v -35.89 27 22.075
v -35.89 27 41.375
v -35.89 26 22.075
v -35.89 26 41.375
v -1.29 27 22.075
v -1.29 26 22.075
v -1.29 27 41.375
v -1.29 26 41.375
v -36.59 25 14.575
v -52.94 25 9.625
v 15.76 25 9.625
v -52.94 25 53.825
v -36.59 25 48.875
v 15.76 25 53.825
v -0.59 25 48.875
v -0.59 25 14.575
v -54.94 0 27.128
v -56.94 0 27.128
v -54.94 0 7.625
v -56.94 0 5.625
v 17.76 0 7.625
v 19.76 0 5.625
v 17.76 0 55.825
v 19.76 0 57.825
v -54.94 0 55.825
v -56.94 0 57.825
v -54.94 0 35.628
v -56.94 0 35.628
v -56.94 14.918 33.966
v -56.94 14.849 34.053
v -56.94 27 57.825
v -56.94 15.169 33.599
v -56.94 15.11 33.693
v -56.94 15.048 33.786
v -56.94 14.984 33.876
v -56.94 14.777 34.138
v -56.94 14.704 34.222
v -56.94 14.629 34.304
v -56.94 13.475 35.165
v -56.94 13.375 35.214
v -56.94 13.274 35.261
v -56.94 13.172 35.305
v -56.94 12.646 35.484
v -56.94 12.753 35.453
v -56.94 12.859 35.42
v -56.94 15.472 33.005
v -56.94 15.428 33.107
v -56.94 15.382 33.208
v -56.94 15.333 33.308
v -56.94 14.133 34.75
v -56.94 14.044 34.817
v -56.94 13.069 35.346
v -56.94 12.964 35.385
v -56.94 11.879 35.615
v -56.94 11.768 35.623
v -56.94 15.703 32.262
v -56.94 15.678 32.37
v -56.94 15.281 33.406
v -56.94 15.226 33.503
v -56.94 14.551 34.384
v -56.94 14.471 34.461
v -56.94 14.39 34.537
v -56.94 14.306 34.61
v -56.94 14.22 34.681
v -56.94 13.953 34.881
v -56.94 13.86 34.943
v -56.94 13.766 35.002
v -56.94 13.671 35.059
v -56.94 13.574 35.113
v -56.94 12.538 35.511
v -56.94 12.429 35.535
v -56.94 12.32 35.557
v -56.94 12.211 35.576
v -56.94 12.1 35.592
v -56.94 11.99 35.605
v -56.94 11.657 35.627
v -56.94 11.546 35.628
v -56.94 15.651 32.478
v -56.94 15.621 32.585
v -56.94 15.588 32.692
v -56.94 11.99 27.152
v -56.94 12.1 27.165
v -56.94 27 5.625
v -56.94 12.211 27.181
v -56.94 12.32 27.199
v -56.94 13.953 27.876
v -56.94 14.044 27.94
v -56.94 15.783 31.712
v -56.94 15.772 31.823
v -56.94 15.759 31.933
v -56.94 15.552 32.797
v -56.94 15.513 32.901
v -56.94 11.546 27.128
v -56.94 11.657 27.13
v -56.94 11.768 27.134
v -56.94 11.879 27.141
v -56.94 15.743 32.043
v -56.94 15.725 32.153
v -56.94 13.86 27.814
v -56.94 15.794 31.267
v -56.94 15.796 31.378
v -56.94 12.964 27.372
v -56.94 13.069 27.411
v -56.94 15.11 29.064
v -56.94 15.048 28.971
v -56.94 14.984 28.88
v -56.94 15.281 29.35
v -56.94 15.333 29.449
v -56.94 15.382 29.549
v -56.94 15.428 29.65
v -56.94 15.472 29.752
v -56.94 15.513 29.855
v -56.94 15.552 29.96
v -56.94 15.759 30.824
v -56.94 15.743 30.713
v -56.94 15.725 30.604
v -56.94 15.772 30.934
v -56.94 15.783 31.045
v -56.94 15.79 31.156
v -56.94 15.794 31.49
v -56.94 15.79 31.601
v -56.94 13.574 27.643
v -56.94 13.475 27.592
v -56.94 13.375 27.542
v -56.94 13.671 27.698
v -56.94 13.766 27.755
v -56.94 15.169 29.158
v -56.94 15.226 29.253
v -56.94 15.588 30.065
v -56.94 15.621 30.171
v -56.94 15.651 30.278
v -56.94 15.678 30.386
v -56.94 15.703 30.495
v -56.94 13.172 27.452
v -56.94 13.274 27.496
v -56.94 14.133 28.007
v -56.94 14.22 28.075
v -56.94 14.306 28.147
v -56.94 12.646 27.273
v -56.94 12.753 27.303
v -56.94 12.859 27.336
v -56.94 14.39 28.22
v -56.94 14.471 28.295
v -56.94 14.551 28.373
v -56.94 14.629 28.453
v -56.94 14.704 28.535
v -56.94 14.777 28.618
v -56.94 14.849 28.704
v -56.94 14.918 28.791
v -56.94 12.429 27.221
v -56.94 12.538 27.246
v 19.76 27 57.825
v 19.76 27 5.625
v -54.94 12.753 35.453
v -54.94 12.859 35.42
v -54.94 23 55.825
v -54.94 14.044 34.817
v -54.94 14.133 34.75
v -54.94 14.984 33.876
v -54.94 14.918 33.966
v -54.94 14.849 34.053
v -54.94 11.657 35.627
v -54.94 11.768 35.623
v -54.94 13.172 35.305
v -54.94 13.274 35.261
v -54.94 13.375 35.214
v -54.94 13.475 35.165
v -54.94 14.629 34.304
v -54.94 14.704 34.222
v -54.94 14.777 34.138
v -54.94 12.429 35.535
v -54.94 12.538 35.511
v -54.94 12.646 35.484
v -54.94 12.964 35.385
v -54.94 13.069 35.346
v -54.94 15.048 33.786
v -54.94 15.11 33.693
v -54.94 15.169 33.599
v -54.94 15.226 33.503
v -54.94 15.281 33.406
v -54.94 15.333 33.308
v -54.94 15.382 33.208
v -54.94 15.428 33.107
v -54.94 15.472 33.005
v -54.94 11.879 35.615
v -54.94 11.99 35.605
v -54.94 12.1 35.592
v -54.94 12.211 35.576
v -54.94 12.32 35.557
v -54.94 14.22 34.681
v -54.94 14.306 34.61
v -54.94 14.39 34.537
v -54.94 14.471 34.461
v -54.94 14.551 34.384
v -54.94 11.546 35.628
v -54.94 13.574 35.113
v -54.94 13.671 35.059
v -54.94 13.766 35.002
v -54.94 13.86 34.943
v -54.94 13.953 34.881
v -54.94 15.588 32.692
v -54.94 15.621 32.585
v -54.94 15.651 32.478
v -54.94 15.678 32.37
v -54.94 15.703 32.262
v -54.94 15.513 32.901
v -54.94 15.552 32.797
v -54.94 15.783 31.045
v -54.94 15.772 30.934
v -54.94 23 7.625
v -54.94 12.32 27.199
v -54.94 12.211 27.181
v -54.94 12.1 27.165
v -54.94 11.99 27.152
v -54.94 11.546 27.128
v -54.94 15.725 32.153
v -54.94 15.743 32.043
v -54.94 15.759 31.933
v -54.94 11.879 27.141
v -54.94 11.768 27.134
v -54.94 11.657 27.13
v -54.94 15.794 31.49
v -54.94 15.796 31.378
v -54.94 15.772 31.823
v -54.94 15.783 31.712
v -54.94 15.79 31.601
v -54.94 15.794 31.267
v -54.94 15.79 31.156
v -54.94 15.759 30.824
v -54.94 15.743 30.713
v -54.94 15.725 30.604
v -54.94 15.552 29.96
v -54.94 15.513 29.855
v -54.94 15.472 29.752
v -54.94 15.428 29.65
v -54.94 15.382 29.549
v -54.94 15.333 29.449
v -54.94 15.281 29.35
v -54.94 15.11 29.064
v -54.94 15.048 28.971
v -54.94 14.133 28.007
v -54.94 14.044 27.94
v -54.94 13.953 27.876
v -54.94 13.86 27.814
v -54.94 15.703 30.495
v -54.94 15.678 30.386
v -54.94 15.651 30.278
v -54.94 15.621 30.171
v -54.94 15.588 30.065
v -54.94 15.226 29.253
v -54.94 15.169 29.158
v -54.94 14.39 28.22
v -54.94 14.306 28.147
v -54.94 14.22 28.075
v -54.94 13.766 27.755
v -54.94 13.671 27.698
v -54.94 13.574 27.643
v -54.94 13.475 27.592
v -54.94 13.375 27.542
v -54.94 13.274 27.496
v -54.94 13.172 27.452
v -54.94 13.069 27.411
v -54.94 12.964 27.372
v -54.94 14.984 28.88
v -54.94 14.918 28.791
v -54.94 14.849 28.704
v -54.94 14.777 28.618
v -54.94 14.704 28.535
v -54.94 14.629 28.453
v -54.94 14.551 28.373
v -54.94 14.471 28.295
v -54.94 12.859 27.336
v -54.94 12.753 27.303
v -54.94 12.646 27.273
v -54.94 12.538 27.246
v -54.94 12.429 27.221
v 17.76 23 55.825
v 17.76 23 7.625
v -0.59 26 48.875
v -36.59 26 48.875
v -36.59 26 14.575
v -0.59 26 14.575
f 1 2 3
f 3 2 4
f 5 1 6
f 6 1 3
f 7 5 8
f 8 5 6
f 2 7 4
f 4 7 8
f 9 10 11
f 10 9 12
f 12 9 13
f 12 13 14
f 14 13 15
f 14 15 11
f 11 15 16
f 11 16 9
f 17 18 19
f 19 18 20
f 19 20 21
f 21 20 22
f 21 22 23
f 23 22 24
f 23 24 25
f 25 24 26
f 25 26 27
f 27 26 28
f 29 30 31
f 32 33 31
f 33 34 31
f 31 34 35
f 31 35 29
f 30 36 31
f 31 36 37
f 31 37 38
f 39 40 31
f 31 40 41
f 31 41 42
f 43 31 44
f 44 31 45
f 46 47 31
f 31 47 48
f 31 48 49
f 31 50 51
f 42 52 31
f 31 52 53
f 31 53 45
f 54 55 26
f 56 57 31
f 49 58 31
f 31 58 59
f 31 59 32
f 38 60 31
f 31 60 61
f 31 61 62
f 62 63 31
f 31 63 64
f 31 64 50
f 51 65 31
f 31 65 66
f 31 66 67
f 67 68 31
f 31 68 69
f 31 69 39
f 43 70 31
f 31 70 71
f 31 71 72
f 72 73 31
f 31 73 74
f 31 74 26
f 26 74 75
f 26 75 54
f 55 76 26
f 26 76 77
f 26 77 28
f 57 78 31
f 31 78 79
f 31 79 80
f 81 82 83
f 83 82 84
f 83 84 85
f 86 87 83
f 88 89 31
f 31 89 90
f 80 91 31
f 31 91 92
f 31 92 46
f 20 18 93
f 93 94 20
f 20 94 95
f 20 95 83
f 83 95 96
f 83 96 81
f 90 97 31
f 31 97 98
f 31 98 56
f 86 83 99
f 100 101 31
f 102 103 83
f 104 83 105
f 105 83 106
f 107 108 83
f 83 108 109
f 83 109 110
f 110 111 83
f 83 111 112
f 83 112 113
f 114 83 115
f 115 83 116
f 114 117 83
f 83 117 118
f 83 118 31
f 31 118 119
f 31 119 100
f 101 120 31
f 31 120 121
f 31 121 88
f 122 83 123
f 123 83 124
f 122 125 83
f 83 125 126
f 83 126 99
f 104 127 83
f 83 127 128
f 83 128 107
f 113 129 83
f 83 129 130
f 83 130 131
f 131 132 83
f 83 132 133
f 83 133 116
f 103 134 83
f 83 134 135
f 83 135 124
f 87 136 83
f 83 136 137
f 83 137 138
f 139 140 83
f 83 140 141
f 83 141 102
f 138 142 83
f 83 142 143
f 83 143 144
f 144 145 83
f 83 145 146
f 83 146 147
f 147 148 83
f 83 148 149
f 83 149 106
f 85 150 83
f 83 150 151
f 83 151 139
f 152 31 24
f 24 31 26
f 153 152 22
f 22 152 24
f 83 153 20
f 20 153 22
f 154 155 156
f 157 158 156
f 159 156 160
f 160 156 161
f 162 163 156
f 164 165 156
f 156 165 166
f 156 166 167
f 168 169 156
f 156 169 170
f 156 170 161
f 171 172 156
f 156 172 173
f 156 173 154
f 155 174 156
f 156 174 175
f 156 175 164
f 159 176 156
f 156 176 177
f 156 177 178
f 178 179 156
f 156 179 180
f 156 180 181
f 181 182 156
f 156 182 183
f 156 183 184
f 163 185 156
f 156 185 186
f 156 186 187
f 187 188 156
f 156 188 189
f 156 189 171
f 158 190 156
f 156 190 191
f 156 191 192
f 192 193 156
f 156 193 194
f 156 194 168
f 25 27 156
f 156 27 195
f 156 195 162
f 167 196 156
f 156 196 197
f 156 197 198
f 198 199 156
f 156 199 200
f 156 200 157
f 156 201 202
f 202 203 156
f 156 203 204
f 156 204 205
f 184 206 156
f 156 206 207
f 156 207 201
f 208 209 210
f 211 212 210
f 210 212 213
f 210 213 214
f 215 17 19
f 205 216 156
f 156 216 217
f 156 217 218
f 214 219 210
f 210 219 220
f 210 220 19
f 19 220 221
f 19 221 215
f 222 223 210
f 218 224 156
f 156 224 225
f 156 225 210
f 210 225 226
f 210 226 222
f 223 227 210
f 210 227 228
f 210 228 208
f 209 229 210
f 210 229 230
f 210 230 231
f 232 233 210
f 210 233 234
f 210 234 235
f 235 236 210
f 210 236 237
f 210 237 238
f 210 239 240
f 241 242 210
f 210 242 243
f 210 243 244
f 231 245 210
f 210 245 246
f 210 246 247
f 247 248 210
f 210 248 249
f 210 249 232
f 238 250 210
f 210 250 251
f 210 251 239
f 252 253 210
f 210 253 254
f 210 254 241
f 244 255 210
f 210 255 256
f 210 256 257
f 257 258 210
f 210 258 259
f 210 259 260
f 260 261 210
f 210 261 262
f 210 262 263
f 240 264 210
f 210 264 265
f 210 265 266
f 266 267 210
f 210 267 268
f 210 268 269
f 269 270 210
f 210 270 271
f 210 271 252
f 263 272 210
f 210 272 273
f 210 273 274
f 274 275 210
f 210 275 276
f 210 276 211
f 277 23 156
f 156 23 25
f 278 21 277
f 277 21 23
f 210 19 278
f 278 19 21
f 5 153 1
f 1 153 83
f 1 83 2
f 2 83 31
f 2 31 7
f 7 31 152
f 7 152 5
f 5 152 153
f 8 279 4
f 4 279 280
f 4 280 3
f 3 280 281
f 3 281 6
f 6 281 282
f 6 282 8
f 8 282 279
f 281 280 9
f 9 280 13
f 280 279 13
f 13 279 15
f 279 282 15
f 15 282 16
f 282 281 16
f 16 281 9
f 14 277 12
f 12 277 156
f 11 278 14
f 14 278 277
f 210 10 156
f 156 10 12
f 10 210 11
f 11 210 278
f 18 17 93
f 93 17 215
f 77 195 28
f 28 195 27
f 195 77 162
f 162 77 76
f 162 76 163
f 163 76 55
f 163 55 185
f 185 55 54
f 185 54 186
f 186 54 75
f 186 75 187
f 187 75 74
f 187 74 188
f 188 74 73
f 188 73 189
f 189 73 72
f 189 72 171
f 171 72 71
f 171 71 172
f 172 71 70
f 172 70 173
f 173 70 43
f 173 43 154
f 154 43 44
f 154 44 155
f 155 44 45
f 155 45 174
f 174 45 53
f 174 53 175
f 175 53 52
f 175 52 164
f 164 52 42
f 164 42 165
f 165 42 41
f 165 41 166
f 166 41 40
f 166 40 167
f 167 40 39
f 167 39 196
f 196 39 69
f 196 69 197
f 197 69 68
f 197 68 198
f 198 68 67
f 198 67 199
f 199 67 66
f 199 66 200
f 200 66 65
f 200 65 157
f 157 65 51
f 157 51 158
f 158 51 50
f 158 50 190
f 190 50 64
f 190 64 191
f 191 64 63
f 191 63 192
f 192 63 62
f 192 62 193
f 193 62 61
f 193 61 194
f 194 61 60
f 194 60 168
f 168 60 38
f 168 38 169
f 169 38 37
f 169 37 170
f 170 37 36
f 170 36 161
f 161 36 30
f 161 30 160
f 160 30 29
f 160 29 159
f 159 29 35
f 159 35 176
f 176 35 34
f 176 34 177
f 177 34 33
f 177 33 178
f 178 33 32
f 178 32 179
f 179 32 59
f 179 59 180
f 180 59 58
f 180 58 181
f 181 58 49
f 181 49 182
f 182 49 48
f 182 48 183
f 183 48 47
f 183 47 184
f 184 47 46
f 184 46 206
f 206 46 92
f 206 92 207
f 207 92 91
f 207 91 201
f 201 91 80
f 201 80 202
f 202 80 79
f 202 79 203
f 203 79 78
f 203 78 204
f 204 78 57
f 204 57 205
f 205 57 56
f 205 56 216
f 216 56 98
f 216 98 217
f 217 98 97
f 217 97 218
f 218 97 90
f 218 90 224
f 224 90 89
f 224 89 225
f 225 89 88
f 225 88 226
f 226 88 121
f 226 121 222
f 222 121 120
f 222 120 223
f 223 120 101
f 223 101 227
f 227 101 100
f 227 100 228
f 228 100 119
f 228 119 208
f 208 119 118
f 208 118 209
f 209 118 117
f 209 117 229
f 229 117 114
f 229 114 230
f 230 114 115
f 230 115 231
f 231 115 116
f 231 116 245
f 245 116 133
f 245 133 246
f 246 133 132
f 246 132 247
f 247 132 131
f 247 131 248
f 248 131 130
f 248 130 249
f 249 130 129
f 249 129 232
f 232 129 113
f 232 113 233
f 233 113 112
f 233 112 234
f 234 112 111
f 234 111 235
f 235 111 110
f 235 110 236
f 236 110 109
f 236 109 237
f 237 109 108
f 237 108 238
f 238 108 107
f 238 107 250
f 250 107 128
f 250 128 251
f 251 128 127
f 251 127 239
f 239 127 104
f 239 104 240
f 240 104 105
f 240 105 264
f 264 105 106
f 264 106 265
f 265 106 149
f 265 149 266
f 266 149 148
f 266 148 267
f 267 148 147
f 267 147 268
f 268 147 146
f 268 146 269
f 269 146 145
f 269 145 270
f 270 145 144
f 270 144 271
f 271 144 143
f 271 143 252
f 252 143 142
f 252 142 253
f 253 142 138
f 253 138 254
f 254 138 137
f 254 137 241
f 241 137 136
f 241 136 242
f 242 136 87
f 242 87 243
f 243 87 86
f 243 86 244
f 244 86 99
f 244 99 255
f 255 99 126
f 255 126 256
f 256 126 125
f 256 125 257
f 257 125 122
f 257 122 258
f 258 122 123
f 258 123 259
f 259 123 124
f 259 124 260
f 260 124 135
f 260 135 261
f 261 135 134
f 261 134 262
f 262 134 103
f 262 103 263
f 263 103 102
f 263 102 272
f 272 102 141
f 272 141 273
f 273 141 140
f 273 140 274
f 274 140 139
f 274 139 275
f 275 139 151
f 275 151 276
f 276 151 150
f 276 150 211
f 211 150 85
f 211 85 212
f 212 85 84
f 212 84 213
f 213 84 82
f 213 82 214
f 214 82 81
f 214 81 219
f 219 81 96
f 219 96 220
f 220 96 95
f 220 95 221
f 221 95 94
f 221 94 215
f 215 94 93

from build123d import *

# Parameters (mm, degrees)
SKETCH_1_W          = 76.7
SKETCH_1_H          = 52.2
SKETCH_1_W_2        = 72.7
SKETCH_1_H_2        = 48.2
EXTRUDE_1_DEPTH     = 25
SKETCH_2_W          = 76.7
SKETCH_2_H          = 52.2
EXTRUDE_2_DEPTH     = 2
SKETCH_3_W          = 34.6
SKETCH_3_H          = 19.3
CUT_EXTRUDE_1_DEPTH = 2
SKETCH_4_W          = 36
SKETCH_4_H          = 34.3
CUT_EXTRUDE_2_DEPTH = 1
CHAMFER_1_SIZE      = 2
CUT_EXTRUDE_3_DEPTH = 2


with BuildPart() as part:
    # Эскиз1 → Бобышка-Вытянуть1 (new body)
    with BuildSketch(Plane(origin=(0, 0, 0), x_dir=(1, 0, 0), z_dir=(0, 1, 0))):
        with Locations((-18.59008079, -31.725044883)):
            Rectangle(SKETCH_1_W, SKETCH_1_H)
        with Locations((-18.59008079, -31.725044883)):
            Rectangle(SKETCH_1_W_2, SKETCH_1_H_2, mode=Mode.SUBTRACT)
    extrude(amount=EXTRUDE_1_DEPTH)

    # Эскиз2 → Бобышка-Вытянуть2 (add)
    with BuildSketch(Plane(origin=(0, 25, 0), x_dir=(1, 0, 0), z_dir=(0, 1, 0))):
        with Locations((-18.59008079, -31.725044883)):
            Rectangle(SKETCH_2_W, SKETCH_2_H)
    extrude(amount=EXTRUDE_2_DEPTH)

    # Эскиз3 → Вырез-Вытянуть1 (cut)
    with BuildSketch(Plane(origin=(0, 27, 0), x_dir=(1, 0, 0), z_dir=(0, 1, 0))):
        with Locations((-18.59008079, -31.725044883)):
            Rectangle(SKETCH_3_W, SKETCH_3_H)
    extrude(amount=-CUT_EXTRUDE_1_DEPTH, mode=Mode.SUBTRACT)

    # Эскиз4 → Вырез-Вытянуть2 (cut)
    with BuildSketch(Plane.XZ.offset(-25)):
        with Locations((-18.59008079, 31.725044883)):
            Rectangle(SKETCH_4_W, SKETCH_4_H)
    extrude(amount=-CUT_EXTRUDE_2_DEPTH, mode=Mode.SUBTRACT)

    # Фаска1
    chamfer_1_edges = [part.edges().sort_by_distance(p)[0] for p in [
        (-54.94008079, 25, 31.725044883),
        (-18.59008079, 25, 55.825044883),
        (17.75991921, 25, 31.725044883),
        (-18.59008079, 25, 7.625044883),
    ]]
    chamfer(chamfer_1_edges, length=CHAMFER_1_SIZE)

    # Эскиз5 → Вырез-Вытянуть3 (cut)
    with BuildSketch(Plane.ZY.offset(56.94008079)):
        with BuildLine():
            Line((35.628323132, 11.545750126), (35.628323132, 0))
            Line((35.628323132, 0), (27.128323132, 0))
            Line((27.128323132, 0), (27.128323132, 11.545750126))
            ThreePointArc((27.128323132, 11.545750126), (31.378323132, 15.795750126), (35.628323132, 11.545750126))
        make_face()
    extrude(amount=-CUT_EXTRUDE_3_DEPTH, mode=Mode.SUBTRACT)


solid = part.part
